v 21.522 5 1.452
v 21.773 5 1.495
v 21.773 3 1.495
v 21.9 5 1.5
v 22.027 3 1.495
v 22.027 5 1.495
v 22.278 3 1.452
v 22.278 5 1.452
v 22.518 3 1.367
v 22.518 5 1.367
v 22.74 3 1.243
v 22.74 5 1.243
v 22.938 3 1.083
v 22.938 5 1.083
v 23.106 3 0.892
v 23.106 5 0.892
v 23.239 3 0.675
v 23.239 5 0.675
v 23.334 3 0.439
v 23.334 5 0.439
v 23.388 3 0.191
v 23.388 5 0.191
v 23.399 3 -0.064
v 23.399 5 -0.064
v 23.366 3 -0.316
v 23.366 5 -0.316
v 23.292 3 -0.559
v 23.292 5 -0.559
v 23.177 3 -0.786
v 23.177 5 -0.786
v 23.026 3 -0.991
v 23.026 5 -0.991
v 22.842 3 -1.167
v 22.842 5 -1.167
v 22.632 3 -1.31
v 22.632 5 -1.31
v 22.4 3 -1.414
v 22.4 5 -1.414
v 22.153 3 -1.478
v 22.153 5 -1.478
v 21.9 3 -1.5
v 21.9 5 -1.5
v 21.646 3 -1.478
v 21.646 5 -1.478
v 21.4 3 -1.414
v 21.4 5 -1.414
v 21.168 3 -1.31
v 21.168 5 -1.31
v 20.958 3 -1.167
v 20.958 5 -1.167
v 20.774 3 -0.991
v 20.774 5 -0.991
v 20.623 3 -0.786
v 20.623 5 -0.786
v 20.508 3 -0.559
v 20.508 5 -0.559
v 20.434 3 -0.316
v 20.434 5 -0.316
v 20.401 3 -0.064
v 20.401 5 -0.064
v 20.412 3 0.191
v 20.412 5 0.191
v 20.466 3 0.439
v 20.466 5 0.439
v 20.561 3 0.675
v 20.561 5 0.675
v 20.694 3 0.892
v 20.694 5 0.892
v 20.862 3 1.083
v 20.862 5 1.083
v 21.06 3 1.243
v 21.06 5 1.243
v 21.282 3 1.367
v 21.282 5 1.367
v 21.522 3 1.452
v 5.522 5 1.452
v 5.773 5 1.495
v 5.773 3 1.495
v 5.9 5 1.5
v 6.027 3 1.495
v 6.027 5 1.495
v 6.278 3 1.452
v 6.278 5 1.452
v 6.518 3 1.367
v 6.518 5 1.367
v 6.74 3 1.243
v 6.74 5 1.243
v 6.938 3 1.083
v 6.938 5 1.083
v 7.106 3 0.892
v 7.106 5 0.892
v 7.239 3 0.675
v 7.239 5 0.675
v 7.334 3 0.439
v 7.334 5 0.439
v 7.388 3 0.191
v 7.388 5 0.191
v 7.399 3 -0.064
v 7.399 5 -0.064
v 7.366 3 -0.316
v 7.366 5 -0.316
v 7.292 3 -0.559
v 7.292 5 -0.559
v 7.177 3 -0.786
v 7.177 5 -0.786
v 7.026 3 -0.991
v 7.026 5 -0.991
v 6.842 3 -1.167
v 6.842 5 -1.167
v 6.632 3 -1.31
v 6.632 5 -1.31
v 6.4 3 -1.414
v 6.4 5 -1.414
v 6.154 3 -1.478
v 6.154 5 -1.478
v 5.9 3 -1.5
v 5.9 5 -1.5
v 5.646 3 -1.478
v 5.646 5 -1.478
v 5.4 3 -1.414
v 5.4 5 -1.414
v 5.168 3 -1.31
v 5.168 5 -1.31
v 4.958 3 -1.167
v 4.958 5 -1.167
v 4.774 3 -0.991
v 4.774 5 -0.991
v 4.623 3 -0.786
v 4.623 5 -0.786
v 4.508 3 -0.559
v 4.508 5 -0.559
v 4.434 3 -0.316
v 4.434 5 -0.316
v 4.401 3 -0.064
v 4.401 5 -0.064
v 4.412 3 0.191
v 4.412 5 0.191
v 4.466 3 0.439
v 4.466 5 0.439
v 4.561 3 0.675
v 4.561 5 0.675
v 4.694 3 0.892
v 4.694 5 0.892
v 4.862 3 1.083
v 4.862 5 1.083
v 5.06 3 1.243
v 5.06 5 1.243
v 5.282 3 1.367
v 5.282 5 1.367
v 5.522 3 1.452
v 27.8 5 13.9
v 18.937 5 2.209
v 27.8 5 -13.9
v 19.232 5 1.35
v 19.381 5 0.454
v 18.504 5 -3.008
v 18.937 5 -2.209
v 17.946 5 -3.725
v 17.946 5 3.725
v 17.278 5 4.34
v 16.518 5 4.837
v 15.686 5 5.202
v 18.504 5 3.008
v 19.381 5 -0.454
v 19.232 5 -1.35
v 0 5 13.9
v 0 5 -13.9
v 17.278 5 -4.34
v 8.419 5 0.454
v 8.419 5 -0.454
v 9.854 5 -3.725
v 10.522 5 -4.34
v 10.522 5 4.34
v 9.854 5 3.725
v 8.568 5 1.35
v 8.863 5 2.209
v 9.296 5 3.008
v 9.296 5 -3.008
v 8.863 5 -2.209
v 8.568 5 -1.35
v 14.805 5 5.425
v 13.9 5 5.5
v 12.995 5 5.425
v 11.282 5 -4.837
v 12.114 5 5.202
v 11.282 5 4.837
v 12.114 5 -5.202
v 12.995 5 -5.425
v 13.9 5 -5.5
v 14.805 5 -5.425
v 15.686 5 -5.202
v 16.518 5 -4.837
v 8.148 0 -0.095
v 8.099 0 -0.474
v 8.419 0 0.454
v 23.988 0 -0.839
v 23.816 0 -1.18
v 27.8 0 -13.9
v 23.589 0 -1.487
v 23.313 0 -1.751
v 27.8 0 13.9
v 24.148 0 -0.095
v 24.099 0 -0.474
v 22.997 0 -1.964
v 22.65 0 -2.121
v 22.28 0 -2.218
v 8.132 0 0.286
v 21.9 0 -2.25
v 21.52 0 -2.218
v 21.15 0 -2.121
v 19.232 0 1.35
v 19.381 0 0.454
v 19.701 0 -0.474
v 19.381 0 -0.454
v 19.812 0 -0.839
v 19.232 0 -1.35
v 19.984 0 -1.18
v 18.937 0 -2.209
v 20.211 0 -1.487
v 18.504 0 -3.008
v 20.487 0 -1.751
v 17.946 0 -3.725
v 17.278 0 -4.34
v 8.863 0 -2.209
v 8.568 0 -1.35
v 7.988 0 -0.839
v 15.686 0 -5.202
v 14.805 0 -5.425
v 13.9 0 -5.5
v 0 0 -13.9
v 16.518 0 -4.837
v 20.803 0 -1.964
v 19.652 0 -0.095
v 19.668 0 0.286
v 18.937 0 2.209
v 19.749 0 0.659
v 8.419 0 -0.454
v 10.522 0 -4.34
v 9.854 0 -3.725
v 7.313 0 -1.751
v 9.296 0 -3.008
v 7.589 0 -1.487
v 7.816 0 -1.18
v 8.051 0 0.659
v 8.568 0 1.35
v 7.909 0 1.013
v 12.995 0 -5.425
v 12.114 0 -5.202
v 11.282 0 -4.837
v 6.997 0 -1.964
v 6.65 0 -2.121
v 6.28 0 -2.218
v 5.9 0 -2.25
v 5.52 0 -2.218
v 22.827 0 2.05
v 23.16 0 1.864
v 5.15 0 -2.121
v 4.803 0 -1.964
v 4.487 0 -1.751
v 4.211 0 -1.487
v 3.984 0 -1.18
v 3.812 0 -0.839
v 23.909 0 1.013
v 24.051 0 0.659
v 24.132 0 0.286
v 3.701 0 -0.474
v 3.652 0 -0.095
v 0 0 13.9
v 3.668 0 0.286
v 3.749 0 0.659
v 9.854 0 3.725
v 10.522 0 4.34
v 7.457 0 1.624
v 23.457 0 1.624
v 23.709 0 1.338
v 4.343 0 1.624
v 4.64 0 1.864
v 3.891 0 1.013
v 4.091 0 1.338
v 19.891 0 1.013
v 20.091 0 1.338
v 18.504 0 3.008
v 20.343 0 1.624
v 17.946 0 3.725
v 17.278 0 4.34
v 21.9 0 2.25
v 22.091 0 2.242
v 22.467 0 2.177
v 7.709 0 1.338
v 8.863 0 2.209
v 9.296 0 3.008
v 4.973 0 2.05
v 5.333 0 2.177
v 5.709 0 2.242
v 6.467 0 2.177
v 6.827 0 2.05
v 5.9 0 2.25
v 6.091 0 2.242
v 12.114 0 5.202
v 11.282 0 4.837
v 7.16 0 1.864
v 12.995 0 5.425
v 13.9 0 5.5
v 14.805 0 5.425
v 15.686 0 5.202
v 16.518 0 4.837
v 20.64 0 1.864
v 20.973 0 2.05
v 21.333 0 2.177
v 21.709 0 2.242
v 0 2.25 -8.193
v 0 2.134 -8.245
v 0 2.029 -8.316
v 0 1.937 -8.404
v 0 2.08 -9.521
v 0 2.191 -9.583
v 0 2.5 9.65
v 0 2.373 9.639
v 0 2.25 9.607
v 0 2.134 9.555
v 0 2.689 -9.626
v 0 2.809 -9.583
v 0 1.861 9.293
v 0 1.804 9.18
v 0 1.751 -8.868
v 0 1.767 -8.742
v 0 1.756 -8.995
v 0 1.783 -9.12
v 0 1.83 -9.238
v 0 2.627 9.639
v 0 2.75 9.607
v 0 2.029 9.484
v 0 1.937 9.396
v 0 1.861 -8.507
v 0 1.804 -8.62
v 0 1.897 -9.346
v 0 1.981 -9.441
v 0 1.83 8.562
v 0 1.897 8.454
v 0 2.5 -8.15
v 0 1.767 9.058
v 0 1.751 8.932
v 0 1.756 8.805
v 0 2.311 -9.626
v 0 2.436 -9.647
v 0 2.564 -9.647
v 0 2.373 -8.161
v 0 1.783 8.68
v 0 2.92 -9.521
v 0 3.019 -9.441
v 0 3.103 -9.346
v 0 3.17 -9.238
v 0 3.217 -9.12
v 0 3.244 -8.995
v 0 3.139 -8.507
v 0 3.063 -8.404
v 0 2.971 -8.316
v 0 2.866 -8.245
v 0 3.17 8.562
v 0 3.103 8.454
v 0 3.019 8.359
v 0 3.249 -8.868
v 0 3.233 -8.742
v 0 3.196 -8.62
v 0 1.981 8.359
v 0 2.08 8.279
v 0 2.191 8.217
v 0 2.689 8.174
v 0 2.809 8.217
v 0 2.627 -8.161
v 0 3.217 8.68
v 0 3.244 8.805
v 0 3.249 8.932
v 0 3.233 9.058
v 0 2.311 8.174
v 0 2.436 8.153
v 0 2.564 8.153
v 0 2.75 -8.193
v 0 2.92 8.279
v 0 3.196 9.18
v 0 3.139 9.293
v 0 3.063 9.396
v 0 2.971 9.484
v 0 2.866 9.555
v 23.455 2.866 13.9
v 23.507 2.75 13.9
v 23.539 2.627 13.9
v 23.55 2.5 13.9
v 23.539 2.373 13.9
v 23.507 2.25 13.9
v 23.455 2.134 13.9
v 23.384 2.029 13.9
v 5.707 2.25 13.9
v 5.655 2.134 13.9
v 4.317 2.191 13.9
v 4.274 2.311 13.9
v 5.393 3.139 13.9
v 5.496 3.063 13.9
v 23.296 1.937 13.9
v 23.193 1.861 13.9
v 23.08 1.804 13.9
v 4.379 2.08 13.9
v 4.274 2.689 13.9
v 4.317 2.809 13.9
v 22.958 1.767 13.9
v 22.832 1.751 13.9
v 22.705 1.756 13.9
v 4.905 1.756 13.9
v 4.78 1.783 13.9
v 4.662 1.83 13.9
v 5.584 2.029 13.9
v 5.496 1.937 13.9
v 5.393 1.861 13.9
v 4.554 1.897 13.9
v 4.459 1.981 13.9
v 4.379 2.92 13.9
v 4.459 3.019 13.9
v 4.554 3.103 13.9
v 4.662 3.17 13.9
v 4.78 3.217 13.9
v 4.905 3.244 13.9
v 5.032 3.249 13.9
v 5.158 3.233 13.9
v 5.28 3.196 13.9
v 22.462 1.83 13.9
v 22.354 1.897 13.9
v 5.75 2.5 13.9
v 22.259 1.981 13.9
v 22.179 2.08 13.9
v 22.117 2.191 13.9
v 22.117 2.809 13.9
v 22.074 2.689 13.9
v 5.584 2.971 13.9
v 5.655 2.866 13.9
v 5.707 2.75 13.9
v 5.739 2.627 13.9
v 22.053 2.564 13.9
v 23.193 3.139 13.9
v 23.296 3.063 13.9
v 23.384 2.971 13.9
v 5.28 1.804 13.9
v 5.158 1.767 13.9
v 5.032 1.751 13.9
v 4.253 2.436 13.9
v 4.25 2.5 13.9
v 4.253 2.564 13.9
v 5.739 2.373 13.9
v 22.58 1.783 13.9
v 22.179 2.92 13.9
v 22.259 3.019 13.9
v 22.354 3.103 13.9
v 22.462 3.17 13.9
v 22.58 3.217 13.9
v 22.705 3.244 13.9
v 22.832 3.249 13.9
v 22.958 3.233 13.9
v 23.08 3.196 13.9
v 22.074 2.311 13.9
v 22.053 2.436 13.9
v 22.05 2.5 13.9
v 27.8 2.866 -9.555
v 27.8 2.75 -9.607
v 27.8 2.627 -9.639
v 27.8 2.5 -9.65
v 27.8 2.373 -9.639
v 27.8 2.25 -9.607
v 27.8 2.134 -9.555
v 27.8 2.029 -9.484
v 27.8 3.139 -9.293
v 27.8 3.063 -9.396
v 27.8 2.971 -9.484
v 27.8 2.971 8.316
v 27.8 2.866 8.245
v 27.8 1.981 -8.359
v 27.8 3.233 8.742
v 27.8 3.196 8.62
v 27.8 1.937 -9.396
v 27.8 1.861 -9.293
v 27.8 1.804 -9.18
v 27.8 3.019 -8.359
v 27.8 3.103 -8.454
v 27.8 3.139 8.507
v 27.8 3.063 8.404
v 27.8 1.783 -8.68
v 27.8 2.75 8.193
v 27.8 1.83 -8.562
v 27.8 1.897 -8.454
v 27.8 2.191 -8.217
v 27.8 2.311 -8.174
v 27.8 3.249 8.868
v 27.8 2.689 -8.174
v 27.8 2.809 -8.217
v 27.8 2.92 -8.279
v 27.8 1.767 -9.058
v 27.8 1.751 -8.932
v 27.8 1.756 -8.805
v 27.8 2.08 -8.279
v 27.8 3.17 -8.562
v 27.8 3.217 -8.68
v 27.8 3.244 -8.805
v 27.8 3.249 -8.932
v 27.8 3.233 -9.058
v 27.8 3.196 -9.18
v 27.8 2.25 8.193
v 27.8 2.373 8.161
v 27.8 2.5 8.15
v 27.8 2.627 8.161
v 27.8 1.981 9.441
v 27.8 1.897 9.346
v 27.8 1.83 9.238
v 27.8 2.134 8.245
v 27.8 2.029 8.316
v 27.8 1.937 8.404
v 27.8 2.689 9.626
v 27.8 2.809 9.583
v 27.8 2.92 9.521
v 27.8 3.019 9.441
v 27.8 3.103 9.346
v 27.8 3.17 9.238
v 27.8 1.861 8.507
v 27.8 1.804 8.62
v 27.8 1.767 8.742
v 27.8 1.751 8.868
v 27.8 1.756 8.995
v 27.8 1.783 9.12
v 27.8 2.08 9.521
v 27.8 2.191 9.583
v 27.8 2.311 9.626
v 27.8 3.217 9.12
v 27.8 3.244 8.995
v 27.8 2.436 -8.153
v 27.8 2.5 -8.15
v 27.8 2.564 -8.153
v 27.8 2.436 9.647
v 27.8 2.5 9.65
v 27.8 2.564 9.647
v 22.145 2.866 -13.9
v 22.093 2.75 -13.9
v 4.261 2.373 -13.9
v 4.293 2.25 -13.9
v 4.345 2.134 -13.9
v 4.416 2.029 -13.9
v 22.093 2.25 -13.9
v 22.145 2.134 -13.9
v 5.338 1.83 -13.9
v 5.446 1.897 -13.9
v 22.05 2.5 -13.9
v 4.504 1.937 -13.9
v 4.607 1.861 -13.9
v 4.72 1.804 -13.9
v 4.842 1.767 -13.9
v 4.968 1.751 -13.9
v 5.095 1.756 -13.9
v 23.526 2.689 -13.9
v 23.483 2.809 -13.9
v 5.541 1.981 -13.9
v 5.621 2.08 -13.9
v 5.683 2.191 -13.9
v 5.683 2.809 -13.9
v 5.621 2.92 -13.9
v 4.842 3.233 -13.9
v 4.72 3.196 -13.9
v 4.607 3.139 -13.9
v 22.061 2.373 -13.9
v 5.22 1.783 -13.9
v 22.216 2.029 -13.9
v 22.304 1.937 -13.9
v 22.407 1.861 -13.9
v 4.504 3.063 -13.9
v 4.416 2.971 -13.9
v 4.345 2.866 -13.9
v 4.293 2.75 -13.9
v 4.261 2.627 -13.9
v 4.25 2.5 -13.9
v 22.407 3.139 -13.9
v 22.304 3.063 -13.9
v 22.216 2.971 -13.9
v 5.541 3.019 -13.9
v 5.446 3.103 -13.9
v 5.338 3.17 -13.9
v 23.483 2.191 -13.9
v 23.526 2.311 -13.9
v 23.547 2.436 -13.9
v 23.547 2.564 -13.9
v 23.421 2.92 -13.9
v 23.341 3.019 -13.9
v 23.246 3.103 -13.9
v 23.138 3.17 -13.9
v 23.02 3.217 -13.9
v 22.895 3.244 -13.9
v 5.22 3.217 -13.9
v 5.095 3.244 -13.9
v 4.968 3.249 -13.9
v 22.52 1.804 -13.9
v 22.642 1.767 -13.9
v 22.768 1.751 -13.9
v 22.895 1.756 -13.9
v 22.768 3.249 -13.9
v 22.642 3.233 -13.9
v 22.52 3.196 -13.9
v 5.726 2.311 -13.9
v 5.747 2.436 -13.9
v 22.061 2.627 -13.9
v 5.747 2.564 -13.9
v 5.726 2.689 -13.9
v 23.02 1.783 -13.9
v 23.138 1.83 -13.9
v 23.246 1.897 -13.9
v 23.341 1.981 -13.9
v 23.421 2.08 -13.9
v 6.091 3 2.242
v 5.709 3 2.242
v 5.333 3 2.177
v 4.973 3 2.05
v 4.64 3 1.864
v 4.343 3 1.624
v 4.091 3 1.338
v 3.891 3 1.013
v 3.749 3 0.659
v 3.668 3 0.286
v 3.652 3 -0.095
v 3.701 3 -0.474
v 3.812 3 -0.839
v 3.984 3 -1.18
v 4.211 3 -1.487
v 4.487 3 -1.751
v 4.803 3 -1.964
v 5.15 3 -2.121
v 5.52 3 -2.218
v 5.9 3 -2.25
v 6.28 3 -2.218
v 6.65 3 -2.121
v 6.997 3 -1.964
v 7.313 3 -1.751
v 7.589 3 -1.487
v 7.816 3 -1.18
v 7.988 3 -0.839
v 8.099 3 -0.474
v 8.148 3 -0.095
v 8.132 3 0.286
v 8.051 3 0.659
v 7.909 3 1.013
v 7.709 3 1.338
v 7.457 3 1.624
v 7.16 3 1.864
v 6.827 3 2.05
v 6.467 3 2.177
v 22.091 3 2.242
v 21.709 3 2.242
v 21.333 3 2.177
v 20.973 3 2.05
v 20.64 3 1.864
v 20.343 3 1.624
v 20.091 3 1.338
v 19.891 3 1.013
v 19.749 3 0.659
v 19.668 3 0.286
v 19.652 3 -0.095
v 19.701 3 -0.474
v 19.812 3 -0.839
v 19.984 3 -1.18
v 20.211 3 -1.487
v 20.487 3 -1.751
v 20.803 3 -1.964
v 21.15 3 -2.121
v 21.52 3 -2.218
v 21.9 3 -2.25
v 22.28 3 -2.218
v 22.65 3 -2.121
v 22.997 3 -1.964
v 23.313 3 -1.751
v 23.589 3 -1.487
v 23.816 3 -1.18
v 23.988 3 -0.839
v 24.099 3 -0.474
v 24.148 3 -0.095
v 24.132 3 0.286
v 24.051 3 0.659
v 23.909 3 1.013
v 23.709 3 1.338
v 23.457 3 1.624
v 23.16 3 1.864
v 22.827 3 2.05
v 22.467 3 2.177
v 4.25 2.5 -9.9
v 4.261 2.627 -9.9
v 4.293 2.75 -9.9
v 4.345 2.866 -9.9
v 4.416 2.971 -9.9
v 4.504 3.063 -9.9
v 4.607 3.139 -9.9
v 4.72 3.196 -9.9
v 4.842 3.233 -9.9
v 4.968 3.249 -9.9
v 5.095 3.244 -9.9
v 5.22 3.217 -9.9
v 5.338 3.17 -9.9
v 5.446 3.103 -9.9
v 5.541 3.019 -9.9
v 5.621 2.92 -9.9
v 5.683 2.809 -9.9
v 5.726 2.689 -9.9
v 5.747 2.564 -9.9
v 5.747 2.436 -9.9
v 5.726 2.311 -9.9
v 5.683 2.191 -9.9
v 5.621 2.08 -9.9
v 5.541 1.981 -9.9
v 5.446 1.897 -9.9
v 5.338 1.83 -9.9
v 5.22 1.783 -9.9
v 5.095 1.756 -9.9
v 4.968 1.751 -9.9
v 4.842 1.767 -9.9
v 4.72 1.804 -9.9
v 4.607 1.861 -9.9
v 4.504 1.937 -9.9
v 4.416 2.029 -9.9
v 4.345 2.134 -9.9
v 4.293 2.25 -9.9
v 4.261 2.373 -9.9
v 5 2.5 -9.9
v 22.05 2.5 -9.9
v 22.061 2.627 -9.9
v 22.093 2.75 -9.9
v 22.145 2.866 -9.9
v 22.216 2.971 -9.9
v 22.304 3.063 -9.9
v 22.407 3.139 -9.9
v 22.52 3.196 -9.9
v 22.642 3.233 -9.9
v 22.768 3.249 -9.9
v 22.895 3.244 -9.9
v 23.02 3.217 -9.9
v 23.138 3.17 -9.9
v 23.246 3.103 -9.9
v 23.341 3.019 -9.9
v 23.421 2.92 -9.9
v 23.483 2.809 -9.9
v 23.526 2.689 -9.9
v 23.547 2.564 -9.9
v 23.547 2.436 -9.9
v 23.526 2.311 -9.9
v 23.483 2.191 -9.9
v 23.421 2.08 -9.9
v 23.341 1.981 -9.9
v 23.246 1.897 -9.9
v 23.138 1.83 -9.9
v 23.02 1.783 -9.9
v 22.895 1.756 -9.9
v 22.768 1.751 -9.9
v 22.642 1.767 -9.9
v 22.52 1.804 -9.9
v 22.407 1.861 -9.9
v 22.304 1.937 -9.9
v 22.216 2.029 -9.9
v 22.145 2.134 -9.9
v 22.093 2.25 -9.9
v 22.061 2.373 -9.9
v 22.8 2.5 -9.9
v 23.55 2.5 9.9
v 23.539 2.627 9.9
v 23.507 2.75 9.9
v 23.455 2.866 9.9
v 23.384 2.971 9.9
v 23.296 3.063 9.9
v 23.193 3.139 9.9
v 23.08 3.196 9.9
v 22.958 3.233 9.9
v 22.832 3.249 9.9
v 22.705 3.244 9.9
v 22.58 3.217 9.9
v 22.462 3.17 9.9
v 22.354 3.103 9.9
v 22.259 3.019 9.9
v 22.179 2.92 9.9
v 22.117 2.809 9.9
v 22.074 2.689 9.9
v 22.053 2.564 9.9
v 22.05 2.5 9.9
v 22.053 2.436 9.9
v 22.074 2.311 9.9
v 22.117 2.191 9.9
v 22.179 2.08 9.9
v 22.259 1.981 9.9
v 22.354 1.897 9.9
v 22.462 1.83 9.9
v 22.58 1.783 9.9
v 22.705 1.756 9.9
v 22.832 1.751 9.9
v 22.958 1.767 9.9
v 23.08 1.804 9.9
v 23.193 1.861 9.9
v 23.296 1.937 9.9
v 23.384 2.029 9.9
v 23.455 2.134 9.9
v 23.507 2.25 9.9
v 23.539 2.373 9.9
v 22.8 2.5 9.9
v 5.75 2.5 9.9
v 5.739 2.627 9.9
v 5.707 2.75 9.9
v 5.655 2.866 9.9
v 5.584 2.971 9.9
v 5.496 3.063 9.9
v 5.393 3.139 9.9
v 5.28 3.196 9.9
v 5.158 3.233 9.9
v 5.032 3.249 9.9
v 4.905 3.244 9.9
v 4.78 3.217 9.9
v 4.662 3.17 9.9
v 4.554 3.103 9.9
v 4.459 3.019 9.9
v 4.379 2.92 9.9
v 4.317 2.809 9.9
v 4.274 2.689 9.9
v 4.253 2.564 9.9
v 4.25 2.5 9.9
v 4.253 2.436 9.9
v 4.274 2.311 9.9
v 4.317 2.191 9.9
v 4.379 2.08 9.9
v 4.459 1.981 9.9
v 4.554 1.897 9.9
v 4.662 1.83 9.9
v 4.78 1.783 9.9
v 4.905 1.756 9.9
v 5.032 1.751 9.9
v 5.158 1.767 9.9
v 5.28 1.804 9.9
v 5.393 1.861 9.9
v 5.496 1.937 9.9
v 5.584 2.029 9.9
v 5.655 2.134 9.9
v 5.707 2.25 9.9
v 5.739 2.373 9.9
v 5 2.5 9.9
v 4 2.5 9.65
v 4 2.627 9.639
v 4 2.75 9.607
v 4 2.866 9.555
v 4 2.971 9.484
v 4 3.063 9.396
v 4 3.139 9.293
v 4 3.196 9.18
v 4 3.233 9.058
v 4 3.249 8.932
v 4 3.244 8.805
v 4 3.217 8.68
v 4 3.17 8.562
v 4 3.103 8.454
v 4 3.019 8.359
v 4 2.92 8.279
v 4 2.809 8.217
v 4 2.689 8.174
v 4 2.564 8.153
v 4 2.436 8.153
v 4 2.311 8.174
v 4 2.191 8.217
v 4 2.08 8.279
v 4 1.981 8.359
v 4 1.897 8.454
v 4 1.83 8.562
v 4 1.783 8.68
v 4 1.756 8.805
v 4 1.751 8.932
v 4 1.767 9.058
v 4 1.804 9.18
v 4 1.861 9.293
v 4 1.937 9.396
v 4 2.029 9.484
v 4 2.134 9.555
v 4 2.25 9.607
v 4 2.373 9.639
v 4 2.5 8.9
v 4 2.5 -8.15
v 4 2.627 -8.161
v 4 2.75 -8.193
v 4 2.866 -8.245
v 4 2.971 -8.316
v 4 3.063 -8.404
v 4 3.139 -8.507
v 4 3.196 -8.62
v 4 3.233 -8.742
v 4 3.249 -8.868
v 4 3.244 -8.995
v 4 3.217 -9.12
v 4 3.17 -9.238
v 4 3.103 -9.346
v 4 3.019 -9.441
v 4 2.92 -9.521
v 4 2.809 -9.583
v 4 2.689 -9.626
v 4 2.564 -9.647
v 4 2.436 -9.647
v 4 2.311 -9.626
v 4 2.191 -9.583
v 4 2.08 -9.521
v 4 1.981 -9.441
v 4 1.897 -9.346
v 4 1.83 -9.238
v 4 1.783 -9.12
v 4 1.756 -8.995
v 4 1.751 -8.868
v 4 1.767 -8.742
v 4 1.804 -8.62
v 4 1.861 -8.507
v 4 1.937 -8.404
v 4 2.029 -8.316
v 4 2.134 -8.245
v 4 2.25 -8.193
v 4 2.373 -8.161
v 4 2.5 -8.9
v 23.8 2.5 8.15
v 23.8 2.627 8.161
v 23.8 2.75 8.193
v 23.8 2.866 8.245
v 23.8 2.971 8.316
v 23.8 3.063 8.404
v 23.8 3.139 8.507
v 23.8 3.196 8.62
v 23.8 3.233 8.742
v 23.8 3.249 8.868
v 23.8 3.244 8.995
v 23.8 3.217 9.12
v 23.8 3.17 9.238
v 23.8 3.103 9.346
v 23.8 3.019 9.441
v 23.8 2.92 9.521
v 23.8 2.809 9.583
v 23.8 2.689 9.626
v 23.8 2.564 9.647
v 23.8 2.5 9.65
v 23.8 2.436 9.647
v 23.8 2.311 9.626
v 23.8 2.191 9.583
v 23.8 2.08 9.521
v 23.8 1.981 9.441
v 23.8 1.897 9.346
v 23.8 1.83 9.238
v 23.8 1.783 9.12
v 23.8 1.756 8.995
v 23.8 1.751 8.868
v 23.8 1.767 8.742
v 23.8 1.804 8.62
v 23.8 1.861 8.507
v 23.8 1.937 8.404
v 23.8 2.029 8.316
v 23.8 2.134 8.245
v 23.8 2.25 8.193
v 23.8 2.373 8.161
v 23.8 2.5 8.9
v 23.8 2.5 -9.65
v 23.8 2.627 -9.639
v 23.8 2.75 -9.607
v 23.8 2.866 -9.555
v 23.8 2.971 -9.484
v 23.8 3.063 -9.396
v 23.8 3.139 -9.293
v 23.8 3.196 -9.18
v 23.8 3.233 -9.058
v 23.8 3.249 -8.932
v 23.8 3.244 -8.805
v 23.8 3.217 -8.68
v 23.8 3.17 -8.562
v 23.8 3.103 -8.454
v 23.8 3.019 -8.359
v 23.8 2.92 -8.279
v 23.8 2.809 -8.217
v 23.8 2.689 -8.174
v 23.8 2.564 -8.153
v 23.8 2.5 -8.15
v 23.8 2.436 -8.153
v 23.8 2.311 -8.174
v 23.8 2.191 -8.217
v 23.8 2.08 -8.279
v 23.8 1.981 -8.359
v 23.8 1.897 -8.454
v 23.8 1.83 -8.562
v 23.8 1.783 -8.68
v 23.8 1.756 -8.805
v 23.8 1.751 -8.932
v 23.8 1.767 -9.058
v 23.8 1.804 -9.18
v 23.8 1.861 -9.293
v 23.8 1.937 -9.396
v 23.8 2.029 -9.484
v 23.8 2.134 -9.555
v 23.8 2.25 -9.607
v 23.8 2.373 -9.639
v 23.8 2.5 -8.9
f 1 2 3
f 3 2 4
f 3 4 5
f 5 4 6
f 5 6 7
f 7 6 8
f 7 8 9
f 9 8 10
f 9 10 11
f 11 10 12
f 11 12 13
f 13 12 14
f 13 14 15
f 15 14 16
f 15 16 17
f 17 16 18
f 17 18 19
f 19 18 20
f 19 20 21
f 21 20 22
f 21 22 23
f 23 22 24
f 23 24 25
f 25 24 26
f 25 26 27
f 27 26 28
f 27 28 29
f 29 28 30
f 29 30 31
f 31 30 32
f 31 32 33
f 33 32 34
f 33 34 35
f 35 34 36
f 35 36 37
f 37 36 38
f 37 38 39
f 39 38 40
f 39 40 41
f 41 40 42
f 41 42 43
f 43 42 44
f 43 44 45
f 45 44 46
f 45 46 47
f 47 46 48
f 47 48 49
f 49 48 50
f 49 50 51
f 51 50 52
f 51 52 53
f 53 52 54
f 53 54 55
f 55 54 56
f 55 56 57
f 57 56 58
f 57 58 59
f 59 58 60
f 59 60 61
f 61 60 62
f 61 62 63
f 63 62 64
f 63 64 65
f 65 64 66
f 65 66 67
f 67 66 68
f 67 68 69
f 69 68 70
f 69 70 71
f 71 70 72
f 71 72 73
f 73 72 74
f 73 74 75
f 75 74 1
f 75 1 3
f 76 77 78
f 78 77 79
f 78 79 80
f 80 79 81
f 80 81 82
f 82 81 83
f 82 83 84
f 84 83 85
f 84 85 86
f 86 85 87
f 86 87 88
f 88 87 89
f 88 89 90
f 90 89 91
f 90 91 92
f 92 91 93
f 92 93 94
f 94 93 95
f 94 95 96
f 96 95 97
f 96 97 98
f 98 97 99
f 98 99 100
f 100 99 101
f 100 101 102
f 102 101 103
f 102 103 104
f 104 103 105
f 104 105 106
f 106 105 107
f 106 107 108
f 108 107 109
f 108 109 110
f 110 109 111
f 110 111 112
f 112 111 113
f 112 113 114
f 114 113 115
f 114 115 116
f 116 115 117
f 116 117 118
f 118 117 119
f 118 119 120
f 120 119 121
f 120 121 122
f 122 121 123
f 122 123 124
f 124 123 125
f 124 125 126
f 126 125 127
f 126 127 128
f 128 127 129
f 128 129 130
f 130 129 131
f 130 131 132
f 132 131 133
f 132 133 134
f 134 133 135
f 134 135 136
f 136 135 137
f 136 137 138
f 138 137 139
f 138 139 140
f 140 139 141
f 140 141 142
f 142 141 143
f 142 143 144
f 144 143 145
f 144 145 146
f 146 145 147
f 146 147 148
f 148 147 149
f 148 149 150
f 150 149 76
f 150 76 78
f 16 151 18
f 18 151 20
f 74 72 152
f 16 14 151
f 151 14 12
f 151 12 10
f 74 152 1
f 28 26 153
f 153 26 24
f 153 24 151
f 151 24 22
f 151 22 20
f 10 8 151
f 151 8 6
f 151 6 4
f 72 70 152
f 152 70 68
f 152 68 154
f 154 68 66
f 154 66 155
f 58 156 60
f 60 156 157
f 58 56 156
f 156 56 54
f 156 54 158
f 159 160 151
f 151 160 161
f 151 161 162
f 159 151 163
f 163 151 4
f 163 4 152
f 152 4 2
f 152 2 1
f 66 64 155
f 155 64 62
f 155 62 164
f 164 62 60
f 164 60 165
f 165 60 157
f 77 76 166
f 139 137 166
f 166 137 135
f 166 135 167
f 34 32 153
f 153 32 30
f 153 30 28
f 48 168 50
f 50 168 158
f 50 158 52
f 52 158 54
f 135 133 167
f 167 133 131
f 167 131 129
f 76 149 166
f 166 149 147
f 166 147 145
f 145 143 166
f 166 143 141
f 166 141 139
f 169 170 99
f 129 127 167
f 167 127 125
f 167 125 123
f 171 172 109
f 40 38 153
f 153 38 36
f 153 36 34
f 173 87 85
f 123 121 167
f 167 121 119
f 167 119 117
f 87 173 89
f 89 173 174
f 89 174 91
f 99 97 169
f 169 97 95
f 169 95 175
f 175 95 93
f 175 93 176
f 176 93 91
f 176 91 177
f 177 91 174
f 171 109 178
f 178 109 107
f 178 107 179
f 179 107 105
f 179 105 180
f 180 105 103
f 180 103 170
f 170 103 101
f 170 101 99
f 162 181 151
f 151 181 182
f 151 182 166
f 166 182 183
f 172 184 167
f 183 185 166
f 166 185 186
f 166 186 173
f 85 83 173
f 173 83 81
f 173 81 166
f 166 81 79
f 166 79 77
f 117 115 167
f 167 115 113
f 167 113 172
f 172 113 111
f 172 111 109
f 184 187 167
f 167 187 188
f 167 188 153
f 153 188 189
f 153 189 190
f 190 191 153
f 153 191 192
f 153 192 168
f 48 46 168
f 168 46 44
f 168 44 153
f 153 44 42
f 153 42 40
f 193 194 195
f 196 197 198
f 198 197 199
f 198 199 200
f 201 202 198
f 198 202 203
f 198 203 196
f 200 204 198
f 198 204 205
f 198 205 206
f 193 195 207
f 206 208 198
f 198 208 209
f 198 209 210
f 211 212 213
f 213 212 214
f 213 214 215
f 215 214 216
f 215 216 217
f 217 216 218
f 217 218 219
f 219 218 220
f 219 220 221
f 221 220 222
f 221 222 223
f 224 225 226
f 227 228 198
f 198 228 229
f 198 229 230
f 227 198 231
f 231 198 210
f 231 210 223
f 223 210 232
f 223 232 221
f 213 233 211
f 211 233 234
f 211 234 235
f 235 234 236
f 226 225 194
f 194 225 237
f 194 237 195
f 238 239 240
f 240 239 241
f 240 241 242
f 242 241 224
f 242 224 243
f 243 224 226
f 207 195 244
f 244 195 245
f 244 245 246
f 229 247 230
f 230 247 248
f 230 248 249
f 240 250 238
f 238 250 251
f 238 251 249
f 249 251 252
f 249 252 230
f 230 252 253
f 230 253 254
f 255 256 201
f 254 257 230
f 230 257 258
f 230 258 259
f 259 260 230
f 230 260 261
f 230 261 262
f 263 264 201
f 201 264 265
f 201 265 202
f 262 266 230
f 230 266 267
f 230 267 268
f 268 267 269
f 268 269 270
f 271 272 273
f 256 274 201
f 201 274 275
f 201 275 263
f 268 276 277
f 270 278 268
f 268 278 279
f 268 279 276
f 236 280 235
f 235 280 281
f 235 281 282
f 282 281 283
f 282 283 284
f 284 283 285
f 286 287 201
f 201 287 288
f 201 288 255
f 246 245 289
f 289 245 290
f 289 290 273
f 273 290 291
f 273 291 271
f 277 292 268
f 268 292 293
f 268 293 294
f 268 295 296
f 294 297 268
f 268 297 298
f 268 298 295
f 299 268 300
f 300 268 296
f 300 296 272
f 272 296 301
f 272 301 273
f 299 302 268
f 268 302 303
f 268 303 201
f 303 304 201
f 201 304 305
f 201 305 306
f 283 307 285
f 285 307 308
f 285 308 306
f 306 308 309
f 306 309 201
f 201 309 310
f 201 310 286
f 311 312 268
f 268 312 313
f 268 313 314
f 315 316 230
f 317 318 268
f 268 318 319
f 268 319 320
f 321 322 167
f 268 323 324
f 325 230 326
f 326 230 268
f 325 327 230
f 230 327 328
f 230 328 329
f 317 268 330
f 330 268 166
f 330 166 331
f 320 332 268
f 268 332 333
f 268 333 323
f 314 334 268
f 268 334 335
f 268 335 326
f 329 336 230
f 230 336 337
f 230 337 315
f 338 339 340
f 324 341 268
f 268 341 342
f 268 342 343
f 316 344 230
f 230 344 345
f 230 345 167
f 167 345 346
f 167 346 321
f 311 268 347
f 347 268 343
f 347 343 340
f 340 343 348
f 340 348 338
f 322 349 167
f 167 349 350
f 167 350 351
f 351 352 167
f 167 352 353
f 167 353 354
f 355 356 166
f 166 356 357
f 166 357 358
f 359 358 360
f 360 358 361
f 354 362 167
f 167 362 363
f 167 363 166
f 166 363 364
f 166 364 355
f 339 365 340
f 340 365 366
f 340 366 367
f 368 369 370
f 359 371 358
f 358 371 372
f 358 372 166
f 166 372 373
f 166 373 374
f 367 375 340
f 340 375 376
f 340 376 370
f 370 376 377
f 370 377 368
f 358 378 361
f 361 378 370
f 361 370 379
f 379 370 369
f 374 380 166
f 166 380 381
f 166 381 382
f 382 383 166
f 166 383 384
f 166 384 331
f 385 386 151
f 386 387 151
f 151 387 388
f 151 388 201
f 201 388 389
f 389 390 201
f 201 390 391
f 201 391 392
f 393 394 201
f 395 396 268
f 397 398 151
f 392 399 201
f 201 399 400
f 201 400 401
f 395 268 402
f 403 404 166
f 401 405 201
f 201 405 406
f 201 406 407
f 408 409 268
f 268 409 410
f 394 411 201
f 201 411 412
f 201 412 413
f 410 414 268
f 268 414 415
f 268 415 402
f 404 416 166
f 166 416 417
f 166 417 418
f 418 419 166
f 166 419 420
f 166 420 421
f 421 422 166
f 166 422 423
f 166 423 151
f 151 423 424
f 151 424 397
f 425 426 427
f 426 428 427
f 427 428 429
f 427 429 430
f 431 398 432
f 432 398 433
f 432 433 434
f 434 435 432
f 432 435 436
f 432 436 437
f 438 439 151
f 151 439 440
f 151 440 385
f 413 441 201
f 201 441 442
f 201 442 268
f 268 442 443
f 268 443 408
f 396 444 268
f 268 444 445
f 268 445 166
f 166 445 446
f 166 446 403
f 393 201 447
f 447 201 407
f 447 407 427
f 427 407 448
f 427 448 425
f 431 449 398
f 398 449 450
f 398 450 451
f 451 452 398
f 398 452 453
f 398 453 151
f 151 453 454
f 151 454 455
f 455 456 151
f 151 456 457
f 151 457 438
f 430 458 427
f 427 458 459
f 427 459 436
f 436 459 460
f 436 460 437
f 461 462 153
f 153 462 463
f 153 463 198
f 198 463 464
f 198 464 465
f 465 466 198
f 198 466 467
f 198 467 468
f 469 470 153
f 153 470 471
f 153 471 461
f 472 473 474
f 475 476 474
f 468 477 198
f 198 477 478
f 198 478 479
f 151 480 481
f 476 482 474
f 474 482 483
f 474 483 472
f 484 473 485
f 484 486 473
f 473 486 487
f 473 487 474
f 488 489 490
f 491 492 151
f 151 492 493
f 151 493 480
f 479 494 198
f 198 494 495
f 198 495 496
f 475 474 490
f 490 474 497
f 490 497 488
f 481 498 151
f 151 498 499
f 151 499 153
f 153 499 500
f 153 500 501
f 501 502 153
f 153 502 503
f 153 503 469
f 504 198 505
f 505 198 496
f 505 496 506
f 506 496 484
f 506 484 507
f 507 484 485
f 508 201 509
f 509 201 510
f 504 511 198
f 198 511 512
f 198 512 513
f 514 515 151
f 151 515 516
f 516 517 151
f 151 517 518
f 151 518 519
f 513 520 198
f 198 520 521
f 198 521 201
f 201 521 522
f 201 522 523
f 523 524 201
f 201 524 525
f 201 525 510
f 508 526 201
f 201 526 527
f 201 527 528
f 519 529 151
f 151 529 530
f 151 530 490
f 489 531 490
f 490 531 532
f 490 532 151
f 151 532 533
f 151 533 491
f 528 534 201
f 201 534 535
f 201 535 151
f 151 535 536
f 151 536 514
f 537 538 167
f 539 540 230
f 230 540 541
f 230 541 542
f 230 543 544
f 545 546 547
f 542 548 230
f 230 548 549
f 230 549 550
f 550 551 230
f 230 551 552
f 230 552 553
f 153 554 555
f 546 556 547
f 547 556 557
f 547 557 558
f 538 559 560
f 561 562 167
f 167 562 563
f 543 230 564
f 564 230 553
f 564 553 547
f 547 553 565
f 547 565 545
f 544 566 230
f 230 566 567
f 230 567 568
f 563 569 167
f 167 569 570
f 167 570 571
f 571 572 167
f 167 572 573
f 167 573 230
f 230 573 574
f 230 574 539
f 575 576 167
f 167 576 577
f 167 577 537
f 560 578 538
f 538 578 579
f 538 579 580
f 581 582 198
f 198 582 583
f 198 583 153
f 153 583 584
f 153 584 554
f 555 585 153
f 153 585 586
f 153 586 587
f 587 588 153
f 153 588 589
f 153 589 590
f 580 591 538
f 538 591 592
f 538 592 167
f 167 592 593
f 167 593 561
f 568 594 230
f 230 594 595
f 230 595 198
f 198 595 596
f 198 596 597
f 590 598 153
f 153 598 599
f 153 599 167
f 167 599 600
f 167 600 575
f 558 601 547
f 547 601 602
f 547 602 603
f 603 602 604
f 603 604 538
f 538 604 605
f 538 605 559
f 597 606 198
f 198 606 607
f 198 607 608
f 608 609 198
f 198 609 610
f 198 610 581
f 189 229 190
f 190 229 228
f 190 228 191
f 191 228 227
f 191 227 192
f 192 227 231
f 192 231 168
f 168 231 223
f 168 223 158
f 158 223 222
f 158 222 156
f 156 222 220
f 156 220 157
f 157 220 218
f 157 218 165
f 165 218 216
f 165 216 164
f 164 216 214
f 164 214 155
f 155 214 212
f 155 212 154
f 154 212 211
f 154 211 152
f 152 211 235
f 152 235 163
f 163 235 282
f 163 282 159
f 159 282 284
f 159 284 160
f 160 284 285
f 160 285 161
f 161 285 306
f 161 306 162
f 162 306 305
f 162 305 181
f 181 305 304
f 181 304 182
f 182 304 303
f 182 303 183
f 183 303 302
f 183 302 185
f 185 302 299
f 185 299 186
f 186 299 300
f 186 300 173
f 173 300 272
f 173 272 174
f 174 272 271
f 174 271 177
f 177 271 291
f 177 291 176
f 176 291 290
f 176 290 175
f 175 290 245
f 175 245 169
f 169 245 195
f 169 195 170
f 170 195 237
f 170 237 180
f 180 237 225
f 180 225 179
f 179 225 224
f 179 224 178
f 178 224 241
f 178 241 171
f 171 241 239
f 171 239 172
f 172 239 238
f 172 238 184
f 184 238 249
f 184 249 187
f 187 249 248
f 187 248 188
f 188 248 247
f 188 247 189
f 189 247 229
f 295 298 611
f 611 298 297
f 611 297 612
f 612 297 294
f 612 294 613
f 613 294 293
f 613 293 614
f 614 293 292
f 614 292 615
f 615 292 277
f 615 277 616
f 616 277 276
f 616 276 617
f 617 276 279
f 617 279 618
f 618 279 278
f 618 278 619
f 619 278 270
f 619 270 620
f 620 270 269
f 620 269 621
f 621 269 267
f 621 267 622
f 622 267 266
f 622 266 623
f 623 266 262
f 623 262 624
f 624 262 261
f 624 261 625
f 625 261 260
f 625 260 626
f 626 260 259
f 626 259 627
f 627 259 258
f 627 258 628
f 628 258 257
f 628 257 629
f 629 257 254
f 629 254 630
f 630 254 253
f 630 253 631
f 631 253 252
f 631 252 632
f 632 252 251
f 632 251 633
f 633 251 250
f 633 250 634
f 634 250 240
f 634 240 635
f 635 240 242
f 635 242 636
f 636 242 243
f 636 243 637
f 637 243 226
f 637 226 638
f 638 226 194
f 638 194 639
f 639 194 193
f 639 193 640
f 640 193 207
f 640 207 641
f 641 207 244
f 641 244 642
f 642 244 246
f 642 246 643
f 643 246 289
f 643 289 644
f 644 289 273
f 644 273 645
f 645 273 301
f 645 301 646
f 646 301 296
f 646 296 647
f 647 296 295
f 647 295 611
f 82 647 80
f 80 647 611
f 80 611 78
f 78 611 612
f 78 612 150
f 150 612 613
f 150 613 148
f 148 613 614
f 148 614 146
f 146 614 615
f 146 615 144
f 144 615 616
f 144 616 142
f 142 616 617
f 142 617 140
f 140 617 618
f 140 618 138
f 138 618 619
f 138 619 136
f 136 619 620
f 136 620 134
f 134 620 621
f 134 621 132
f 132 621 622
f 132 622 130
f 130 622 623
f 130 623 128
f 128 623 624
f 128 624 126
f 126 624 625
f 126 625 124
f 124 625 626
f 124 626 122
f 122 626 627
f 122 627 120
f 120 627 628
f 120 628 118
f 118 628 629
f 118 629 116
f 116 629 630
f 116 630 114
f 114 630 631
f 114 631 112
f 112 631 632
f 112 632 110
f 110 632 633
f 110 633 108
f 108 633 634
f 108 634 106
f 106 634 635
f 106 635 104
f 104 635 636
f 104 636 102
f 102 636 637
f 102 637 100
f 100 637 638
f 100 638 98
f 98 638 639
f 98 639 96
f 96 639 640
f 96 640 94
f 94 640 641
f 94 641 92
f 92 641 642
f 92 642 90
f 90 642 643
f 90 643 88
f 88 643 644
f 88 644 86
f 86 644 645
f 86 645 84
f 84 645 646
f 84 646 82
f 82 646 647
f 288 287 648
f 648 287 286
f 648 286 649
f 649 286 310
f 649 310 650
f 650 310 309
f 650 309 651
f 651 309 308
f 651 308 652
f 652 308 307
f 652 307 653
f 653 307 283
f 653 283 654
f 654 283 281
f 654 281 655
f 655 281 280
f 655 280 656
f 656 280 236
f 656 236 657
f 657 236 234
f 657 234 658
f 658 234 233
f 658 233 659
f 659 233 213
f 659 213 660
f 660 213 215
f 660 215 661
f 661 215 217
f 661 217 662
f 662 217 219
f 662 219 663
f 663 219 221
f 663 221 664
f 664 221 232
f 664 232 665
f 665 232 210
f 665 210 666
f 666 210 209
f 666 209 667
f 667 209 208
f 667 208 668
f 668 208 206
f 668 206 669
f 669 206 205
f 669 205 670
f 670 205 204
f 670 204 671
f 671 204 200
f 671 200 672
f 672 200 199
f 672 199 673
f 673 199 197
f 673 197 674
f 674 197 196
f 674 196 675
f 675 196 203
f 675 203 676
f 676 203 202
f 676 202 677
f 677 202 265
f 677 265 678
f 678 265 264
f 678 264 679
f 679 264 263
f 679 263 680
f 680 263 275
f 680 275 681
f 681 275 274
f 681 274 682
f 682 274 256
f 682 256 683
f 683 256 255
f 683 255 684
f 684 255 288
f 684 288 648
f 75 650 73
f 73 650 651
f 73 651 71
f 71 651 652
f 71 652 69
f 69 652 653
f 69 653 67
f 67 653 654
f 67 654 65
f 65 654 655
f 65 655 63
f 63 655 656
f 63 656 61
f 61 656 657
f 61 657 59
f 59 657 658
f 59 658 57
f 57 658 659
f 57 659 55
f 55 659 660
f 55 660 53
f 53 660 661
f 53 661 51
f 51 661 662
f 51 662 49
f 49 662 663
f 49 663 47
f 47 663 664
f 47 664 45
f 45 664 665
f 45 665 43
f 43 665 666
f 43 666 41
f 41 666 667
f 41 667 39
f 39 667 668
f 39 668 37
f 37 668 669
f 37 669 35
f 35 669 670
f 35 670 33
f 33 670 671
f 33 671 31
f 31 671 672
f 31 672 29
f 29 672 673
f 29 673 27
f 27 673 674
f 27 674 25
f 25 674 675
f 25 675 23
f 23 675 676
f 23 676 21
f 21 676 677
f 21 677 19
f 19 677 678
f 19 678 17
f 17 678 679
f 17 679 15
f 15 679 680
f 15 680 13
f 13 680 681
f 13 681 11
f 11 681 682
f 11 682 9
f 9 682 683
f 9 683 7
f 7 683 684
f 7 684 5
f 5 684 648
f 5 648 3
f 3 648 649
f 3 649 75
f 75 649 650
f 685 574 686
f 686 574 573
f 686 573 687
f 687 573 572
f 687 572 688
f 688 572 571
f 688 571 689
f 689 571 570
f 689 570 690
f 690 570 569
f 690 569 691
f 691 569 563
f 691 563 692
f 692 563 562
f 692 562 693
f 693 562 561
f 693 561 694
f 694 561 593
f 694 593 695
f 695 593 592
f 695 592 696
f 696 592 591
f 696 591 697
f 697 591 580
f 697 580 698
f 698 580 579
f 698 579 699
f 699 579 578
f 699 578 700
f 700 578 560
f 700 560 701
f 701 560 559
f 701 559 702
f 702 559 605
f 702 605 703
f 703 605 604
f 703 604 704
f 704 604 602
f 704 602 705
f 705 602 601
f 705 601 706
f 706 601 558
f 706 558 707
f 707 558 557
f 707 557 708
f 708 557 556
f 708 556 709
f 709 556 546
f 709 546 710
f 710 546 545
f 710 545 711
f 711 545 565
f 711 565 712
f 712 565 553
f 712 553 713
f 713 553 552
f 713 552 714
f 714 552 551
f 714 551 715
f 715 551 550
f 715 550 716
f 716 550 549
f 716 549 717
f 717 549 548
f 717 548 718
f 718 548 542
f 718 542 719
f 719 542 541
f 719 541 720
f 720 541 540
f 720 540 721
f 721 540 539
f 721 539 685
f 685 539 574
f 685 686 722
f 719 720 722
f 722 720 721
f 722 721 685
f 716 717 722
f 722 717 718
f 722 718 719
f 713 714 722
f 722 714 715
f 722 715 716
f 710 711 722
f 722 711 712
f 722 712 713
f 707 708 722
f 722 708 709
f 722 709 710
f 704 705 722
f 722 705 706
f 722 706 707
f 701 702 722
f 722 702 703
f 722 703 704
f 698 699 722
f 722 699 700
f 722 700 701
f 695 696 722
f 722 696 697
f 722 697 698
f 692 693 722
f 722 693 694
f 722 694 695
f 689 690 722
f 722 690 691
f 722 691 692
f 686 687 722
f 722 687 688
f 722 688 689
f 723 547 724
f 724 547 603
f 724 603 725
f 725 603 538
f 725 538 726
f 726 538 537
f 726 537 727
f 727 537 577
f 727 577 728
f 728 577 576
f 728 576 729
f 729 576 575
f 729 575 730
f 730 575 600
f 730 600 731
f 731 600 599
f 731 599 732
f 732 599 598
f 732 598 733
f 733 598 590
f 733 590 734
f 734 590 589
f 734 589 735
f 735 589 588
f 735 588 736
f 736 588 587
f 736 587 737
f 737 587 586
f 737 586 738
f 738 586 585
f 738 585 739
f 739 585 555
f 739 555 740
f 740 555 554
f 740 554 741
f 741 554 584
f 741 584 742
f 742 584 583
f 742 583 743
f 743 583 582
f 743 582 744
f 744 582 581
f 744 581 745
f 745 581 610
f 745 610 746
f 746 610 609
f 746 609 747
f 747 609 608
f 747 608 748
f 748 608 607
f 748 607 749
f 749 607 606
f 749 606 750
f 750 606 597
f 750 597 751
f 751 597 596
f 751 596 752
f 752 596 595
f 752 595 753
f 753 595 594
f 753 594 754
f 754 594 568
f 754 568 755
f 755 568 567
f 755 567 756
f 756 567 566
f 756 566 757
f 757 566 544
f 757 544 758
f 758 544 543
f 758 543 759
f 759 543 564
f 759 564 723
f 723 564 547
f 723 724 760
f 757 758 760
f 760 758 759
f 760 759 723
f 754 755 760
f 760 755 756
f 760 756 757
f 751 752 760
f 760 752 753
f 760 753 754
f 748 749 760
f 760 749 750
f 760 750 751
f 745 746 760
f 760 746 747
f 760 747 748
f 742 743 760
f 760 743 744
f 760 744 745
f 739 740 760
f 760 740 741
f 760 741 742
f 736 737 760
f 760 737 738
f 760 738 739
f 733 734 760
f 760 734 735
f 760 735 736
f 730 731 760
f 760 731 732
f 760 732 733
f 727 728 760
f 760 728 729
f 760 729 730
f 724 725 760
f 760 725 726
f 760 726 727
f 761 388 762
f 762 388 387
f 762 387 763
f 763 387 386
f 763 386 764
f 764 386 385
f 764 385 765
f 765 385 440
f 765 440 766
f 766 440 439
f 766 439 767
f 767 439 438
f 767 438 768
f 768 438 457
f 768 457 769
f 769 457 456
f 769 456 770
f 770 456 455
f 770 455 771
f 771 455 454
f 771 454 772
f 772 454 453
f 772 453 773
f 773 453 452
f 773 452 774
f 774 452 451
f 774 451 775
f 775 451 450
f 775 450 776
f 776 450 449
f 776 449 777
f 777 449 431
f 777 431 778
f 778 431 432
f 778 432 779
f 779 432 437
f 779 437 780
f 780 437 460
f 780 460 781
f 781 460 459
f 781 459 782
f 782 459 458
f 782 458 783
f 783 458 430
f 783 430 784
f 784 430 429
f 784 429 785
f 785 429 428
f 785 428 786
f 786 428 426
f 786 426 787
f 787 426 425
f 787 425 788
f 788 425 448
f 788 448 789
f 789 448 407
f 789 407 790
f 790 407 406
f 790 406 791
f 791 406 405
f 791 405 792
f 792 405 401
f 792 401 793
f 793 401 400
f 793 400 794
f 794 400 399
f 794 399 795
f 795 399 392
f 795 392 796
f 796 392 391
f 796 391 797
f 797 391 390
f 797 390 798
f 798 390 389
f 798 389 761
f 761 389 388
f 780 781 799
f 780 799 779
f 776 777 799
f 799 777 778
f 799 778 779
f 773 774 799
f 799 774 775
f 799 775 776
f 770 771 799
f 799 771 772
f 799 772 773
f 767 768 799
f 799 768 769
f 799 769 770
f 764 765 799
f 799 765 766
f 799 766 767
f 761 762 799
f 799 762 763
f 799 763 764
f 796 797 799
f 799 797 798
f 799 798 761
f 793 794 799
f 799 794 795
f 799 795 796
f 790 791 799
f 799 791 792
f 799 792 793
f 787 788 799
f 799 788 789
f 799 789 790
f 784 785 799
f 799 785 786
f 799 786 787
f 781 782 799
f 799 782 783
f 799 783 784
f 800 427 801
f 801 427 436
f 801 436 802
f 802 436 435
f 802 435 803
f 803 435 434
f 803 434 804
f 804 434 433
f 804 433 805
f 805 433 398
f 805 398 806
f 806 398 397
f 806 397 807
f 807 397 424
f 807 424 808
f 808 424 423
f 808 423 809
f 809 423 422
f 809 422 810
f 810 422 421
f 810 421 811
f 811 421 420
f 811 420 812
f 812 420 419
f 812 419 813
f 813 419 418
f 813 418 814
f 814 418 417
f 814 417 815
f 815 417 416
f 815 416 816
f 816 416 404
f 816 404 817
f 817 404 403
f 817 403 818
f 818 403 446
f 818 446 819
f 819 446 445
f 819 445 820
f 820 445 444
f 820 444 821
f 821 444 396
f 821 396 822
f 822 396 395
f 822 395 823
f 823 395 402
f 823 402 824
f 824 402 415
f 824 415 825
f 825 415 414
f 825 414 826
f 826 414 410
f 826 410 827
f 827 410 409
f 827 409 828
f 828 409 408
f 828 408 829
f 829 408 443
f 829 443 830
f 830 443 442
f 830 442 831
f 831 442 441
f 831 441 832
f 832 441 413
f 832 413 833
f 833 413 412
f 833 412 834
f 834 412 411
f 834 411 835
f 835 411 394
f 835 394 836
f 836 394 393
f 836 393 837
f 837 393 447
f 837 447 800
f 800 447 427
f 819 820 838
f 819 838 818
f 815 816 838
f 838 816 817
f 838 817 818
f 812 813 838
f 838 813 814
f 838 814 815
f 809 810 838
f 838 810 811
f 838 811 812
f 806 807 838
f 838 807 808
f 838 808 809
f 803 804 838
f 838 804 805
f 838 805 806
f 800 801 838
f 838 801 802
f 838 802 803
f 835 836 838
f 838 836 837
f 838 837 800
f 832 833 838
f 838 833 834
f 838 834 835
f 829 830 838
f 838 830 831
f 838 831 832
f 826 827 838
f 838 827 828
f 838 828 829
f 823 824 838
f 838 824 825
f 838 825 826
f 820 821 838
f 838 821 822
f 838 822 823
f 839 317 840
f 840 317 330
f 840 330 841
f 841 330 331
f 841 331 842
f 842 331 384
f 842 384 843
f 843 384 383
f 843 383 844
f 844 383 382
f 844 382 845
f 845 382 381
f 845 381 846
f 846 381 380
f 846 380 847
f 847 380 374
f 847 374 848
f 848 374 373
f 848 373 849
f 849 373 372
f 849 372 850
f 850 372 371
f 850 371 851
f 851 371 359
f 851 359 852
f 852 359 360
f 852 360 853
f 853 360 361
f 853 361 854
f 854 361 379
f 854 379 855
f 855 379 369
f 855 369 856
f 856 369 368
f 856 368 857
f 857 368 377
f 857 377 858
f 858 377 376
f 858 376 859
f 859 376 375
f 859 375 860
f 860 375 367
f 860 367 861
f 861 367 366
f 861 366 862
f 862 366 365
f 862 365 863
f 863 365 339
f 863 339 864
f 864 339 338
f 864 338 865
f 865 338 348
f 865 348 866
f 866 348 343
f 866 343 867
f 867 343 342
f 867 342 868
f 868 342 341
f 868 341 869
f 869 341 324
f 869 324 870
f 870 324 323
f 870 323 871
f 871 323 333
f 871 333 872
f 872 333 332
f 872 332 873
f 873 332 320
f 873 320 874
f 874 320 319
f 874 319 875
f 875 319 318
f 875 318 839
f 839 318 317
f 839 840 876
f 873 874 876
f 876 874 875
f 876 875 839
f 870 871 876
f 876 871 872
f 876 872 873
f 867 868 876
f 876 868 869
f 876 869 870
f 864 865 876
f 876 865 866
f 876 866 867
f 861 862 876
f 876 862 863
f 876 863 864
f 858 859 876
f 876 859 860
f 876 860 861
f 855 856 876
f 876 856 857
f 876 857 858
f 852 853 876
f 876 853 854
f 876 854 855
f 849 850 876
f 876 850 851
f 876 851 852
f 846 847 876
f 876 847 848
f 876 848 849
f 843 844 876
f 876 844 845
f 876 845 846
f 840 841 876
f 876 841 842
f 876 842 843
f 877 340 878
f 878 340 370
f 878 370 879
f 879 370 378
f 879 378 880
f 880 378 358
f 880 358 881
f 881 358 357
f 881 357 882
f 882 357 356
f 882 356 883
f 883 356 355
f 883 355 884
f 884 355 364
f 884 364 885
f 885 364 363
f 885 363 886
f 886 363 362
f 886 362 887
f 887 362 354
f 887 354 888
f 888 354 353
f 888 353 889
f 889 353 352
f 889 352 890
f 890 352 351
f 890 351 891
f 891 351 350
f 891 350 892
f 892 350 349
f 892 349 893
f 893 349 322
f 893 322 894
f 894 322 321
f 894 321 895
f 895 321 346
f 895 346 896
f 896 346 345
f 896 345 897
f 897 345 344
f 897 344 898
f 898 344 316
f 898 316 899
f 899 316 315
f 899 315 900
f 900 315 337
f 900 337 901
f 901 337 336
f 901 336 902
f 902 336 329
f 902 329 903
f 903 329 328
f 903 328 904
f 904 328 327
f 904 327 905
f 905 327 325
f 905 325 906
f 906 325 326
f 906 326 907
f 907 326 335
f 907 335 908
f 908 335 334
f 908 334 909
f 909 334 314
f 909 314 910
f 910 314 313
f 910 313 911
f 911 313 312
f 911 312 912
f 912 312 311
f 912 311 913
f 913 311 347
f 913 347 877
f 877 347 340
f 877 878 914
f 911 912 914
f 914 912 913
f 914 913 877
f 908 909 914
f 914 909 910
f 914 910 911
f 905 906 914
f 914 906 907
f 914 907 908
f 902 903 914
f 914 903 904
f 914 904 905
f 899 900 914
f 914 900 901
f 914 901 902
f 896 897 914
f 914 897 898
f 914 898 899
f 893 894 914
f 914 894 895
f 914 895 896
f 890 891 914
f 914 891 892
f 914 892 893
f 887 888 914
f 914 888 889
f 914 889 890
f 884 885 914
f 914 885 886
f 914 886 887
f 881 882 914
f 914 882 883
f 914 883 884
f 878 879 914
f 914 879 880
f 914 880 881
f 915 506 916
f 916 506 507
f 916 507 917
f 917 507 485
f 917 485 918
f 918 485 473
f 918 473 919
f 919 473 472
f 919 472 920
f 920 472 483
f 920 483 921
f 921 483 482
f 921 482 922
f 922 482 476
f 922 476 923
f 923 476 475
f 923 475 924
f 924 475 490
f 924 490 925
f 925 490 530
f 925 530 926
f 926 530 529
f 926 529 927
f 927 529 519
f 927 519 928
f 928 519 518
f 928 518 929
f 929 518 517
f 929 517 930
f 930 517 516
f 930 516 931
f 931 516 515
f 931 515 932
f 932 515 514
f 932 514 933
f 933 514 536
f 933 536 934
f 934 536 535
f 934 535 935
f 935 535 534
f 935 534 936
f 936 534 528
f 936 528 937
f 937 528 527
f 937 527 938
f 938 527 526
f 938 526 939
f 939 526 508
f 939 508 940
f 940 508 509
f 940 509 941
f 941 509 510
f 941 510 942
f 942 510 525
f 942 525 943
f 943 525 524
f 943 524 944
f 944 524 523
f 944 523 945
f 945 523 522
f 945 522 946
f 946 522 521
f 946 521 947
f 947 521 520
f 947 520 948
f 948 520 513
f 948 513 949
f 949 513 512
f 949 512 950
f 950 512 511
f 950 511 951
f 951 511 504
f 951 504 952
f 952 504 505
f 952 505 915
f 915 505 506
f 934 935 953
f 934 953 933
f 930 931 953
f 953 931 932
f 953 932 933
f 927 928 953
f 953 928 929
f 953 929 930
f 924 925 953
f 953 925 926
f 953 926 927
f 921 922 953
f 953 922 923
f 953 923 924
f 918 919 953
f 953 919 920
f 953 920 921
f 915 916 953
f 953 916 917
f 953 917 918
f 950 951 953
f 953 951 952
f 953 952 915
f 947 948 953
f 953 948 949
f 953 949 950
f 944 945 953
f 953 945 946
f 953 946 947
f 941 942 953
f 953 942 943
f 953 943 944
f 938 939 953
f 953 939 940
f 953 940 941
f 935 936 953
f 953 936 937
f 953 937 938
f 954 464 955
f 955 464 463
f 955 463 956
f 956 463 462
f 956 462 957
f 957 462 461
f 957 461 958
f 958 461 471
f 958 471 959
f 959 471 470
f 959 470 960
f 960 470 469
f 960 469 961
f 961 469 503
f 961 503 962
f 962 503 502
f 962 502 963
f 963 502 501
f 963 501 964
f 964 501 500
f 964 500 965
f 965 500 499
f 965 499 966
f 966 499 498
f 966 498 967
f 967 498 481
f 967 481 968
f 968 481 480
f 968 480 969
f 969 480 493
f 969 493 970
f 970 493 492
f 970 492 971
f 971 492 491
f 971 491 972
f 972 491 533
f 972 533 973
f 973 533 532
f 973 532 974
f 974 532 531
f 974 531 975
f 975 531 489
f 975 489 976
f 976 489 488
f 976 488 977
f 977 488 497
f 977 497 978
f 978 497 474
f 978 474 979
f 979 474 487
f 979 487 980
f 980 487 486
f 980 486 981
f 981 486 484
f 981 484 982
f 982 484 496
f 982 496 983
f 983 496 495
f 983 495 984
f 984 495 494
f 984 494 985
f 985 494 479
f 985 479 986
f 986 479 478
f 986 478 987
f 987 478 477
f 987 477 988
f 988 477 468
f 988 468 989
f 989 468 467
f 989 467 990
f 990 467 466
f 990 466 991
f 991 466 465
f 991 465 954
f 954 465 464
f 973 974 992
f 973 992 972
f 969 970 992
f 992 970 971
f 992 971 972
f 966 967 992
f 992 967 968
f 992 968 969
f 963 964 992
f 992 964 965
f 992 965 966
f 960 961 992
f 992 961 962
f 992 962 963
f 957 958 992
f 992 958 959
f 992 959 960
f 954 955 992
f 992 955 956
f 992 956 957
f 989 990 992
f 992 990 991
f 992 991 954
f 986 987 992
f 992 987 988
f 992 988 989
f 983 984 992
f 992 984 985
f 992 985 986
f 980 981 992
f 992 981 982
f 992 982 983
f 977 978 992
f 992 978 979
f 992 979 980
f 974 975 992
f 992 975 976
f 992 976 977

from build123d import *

# Parameters (mm, degrees)
SKETCH_1_W          = 27.8
SKETCH_1_H          = 27.8
SKETCH_1_R          = 5.5
EXTRUDE_1_DEPTH     = 5
SKETCH_1_15_R       = 1.5
CUT_EXTRUDE_1_DEPTH = 32.480946619
SKETCH_1_16_R       = 2.25
CUT_EXTRUDE_2_DEPTH = 3
SKETCH_2_R          = 0.75
CUT_EXTRUDE_3_DEPTH = 4
CUT_EXTRUDE_START   = -23.8
SKETCH_2_3_R        = 0.75
CUT_EXTRUDE_4_DEPTH = 4
SKETCH_3_R          = 0.75
CUT_EXTRUDE_5_DEPTH = 4
SKETCH_3_3_R        = 0.75
CUT_EXTRUDE_6_DEPTH = 4


with BuildPart() as part:
    # 草图1 → 凸台-拉伸1 (new body)
    with BuildSketch(Plane(origin=(0, 0, 0), x_dir=(1, 0, 0), z_dir=(0, 1, 0))):
        with Locations((13.9, 0)):
            Rectangle(SKETCH_1_W, SKETCH_1_H)
        with Locations(Location((13.9, 0, 0), (0, 0, 270))):
            Circle(SKETCH_1_R, mode=Mode.SUBTRACT)
    extrude(amount=EXTRUDE_1_DEPTH)

    # 草图1<15> → 切除-拉伸1 (cut, through all)
    with BuildSketch(Plane(origin=(0, 0, 0), x_dir=(1, 0, 0), z_dir=(0, 1, 0))):
        with Locations(Location((5.9, 0, 0), (0, 0, 270))):
            Circle(SKETCH_1_15_R)
        with Locations(Location((21.9, 0, 0), (0, 0, 270))):
            Circle(SKETCH_1_15_R)
    extrude(amount=CUT_EXTRUDE_1_DEPTH, mode=Mode.SUBTRACT)

    # 草图1<16> → 切除-拉伸2 (cut)
    with BuildSketch(Plane(origin=(0, 0, 0), x_dir=(1, 0, 0), z_dir=(0, 1, 0))):
        with Locations(Location((5.9, 0, 0), (0, 0, 90))):
            Circle(SKETCH_1_16_R)
        with Locations(Location((21.9, 0, 0), (0, 0, 90))):
            Circle(SKETCH_1_16_R)
    extrude(amount=CUT_EXTRUDE_2_DEPTH, mode=Mode.SUBTRACT)

    # 草图2 → 切除-拉伸3 (cut)
    with BuildSketch(Plane(origin=(0, 0, -13.9), x_dir=(-1, 0, 0), z_dir=(0, 0, -1))):
        with Locations((-22.8, 2.5)):
            Circle(SKETCH_2_R)
        with Locations((-5, 2.5)):
            Circle(SKETCH_2_R)
    extrude(amount=-CUT_EXTRUDE_3_DEPTH, mode=Mode.SUBTRACT)

    # 草图2<3> → 切除-拉伸4 (cut)
    with BuildSketch(Plane(origin=(0, 0, -13.9), x_dir=(-1, 0, 0), z_dir=(0, 0, -1)).offset(CUT_EXTRUDE_START)):
        with Locations((-22.8, 2.5)):
            Circle(SKETCH_2_3_R)
        with Locations((-5, 2.5)):
            Circle(SKETCH_2_3_R)
    extrude(amount=-CUT_EXTRUDE_4_DEPTH, mode=Mode.SUBTRACT)

    # 草图3 → 切除-拉伸5 (cut)
    with BuildSketch(Plane.ZY):
        with Locations((-8.9, 2.5)):
            Circle(SKETCH_3_R)
        with Locations((8.9, 2.5)):
            Circle(SKETCH_3_R)
    extrude(amount=-CUT_EXTRUDE_5_DEPTH, mode=Mode.SUBTRACT)

    # 草图3<3> → 切除-拉伸6 (cut)
    with BuildSketch(Plane.ZY.offset(CUT_EXTRUDE_START)):
        with Locations((-8.9, 2.5)):
            Circle(SKETCH_3_3_R)
        with Locations((8.9, 2.5)):
            Circle(SKETCH_3_3_R)
    extrude(amount=-CUT_EXTRUDE_6_DEPTH, mode=Mode.SUBTRACT)


solid = part.part
